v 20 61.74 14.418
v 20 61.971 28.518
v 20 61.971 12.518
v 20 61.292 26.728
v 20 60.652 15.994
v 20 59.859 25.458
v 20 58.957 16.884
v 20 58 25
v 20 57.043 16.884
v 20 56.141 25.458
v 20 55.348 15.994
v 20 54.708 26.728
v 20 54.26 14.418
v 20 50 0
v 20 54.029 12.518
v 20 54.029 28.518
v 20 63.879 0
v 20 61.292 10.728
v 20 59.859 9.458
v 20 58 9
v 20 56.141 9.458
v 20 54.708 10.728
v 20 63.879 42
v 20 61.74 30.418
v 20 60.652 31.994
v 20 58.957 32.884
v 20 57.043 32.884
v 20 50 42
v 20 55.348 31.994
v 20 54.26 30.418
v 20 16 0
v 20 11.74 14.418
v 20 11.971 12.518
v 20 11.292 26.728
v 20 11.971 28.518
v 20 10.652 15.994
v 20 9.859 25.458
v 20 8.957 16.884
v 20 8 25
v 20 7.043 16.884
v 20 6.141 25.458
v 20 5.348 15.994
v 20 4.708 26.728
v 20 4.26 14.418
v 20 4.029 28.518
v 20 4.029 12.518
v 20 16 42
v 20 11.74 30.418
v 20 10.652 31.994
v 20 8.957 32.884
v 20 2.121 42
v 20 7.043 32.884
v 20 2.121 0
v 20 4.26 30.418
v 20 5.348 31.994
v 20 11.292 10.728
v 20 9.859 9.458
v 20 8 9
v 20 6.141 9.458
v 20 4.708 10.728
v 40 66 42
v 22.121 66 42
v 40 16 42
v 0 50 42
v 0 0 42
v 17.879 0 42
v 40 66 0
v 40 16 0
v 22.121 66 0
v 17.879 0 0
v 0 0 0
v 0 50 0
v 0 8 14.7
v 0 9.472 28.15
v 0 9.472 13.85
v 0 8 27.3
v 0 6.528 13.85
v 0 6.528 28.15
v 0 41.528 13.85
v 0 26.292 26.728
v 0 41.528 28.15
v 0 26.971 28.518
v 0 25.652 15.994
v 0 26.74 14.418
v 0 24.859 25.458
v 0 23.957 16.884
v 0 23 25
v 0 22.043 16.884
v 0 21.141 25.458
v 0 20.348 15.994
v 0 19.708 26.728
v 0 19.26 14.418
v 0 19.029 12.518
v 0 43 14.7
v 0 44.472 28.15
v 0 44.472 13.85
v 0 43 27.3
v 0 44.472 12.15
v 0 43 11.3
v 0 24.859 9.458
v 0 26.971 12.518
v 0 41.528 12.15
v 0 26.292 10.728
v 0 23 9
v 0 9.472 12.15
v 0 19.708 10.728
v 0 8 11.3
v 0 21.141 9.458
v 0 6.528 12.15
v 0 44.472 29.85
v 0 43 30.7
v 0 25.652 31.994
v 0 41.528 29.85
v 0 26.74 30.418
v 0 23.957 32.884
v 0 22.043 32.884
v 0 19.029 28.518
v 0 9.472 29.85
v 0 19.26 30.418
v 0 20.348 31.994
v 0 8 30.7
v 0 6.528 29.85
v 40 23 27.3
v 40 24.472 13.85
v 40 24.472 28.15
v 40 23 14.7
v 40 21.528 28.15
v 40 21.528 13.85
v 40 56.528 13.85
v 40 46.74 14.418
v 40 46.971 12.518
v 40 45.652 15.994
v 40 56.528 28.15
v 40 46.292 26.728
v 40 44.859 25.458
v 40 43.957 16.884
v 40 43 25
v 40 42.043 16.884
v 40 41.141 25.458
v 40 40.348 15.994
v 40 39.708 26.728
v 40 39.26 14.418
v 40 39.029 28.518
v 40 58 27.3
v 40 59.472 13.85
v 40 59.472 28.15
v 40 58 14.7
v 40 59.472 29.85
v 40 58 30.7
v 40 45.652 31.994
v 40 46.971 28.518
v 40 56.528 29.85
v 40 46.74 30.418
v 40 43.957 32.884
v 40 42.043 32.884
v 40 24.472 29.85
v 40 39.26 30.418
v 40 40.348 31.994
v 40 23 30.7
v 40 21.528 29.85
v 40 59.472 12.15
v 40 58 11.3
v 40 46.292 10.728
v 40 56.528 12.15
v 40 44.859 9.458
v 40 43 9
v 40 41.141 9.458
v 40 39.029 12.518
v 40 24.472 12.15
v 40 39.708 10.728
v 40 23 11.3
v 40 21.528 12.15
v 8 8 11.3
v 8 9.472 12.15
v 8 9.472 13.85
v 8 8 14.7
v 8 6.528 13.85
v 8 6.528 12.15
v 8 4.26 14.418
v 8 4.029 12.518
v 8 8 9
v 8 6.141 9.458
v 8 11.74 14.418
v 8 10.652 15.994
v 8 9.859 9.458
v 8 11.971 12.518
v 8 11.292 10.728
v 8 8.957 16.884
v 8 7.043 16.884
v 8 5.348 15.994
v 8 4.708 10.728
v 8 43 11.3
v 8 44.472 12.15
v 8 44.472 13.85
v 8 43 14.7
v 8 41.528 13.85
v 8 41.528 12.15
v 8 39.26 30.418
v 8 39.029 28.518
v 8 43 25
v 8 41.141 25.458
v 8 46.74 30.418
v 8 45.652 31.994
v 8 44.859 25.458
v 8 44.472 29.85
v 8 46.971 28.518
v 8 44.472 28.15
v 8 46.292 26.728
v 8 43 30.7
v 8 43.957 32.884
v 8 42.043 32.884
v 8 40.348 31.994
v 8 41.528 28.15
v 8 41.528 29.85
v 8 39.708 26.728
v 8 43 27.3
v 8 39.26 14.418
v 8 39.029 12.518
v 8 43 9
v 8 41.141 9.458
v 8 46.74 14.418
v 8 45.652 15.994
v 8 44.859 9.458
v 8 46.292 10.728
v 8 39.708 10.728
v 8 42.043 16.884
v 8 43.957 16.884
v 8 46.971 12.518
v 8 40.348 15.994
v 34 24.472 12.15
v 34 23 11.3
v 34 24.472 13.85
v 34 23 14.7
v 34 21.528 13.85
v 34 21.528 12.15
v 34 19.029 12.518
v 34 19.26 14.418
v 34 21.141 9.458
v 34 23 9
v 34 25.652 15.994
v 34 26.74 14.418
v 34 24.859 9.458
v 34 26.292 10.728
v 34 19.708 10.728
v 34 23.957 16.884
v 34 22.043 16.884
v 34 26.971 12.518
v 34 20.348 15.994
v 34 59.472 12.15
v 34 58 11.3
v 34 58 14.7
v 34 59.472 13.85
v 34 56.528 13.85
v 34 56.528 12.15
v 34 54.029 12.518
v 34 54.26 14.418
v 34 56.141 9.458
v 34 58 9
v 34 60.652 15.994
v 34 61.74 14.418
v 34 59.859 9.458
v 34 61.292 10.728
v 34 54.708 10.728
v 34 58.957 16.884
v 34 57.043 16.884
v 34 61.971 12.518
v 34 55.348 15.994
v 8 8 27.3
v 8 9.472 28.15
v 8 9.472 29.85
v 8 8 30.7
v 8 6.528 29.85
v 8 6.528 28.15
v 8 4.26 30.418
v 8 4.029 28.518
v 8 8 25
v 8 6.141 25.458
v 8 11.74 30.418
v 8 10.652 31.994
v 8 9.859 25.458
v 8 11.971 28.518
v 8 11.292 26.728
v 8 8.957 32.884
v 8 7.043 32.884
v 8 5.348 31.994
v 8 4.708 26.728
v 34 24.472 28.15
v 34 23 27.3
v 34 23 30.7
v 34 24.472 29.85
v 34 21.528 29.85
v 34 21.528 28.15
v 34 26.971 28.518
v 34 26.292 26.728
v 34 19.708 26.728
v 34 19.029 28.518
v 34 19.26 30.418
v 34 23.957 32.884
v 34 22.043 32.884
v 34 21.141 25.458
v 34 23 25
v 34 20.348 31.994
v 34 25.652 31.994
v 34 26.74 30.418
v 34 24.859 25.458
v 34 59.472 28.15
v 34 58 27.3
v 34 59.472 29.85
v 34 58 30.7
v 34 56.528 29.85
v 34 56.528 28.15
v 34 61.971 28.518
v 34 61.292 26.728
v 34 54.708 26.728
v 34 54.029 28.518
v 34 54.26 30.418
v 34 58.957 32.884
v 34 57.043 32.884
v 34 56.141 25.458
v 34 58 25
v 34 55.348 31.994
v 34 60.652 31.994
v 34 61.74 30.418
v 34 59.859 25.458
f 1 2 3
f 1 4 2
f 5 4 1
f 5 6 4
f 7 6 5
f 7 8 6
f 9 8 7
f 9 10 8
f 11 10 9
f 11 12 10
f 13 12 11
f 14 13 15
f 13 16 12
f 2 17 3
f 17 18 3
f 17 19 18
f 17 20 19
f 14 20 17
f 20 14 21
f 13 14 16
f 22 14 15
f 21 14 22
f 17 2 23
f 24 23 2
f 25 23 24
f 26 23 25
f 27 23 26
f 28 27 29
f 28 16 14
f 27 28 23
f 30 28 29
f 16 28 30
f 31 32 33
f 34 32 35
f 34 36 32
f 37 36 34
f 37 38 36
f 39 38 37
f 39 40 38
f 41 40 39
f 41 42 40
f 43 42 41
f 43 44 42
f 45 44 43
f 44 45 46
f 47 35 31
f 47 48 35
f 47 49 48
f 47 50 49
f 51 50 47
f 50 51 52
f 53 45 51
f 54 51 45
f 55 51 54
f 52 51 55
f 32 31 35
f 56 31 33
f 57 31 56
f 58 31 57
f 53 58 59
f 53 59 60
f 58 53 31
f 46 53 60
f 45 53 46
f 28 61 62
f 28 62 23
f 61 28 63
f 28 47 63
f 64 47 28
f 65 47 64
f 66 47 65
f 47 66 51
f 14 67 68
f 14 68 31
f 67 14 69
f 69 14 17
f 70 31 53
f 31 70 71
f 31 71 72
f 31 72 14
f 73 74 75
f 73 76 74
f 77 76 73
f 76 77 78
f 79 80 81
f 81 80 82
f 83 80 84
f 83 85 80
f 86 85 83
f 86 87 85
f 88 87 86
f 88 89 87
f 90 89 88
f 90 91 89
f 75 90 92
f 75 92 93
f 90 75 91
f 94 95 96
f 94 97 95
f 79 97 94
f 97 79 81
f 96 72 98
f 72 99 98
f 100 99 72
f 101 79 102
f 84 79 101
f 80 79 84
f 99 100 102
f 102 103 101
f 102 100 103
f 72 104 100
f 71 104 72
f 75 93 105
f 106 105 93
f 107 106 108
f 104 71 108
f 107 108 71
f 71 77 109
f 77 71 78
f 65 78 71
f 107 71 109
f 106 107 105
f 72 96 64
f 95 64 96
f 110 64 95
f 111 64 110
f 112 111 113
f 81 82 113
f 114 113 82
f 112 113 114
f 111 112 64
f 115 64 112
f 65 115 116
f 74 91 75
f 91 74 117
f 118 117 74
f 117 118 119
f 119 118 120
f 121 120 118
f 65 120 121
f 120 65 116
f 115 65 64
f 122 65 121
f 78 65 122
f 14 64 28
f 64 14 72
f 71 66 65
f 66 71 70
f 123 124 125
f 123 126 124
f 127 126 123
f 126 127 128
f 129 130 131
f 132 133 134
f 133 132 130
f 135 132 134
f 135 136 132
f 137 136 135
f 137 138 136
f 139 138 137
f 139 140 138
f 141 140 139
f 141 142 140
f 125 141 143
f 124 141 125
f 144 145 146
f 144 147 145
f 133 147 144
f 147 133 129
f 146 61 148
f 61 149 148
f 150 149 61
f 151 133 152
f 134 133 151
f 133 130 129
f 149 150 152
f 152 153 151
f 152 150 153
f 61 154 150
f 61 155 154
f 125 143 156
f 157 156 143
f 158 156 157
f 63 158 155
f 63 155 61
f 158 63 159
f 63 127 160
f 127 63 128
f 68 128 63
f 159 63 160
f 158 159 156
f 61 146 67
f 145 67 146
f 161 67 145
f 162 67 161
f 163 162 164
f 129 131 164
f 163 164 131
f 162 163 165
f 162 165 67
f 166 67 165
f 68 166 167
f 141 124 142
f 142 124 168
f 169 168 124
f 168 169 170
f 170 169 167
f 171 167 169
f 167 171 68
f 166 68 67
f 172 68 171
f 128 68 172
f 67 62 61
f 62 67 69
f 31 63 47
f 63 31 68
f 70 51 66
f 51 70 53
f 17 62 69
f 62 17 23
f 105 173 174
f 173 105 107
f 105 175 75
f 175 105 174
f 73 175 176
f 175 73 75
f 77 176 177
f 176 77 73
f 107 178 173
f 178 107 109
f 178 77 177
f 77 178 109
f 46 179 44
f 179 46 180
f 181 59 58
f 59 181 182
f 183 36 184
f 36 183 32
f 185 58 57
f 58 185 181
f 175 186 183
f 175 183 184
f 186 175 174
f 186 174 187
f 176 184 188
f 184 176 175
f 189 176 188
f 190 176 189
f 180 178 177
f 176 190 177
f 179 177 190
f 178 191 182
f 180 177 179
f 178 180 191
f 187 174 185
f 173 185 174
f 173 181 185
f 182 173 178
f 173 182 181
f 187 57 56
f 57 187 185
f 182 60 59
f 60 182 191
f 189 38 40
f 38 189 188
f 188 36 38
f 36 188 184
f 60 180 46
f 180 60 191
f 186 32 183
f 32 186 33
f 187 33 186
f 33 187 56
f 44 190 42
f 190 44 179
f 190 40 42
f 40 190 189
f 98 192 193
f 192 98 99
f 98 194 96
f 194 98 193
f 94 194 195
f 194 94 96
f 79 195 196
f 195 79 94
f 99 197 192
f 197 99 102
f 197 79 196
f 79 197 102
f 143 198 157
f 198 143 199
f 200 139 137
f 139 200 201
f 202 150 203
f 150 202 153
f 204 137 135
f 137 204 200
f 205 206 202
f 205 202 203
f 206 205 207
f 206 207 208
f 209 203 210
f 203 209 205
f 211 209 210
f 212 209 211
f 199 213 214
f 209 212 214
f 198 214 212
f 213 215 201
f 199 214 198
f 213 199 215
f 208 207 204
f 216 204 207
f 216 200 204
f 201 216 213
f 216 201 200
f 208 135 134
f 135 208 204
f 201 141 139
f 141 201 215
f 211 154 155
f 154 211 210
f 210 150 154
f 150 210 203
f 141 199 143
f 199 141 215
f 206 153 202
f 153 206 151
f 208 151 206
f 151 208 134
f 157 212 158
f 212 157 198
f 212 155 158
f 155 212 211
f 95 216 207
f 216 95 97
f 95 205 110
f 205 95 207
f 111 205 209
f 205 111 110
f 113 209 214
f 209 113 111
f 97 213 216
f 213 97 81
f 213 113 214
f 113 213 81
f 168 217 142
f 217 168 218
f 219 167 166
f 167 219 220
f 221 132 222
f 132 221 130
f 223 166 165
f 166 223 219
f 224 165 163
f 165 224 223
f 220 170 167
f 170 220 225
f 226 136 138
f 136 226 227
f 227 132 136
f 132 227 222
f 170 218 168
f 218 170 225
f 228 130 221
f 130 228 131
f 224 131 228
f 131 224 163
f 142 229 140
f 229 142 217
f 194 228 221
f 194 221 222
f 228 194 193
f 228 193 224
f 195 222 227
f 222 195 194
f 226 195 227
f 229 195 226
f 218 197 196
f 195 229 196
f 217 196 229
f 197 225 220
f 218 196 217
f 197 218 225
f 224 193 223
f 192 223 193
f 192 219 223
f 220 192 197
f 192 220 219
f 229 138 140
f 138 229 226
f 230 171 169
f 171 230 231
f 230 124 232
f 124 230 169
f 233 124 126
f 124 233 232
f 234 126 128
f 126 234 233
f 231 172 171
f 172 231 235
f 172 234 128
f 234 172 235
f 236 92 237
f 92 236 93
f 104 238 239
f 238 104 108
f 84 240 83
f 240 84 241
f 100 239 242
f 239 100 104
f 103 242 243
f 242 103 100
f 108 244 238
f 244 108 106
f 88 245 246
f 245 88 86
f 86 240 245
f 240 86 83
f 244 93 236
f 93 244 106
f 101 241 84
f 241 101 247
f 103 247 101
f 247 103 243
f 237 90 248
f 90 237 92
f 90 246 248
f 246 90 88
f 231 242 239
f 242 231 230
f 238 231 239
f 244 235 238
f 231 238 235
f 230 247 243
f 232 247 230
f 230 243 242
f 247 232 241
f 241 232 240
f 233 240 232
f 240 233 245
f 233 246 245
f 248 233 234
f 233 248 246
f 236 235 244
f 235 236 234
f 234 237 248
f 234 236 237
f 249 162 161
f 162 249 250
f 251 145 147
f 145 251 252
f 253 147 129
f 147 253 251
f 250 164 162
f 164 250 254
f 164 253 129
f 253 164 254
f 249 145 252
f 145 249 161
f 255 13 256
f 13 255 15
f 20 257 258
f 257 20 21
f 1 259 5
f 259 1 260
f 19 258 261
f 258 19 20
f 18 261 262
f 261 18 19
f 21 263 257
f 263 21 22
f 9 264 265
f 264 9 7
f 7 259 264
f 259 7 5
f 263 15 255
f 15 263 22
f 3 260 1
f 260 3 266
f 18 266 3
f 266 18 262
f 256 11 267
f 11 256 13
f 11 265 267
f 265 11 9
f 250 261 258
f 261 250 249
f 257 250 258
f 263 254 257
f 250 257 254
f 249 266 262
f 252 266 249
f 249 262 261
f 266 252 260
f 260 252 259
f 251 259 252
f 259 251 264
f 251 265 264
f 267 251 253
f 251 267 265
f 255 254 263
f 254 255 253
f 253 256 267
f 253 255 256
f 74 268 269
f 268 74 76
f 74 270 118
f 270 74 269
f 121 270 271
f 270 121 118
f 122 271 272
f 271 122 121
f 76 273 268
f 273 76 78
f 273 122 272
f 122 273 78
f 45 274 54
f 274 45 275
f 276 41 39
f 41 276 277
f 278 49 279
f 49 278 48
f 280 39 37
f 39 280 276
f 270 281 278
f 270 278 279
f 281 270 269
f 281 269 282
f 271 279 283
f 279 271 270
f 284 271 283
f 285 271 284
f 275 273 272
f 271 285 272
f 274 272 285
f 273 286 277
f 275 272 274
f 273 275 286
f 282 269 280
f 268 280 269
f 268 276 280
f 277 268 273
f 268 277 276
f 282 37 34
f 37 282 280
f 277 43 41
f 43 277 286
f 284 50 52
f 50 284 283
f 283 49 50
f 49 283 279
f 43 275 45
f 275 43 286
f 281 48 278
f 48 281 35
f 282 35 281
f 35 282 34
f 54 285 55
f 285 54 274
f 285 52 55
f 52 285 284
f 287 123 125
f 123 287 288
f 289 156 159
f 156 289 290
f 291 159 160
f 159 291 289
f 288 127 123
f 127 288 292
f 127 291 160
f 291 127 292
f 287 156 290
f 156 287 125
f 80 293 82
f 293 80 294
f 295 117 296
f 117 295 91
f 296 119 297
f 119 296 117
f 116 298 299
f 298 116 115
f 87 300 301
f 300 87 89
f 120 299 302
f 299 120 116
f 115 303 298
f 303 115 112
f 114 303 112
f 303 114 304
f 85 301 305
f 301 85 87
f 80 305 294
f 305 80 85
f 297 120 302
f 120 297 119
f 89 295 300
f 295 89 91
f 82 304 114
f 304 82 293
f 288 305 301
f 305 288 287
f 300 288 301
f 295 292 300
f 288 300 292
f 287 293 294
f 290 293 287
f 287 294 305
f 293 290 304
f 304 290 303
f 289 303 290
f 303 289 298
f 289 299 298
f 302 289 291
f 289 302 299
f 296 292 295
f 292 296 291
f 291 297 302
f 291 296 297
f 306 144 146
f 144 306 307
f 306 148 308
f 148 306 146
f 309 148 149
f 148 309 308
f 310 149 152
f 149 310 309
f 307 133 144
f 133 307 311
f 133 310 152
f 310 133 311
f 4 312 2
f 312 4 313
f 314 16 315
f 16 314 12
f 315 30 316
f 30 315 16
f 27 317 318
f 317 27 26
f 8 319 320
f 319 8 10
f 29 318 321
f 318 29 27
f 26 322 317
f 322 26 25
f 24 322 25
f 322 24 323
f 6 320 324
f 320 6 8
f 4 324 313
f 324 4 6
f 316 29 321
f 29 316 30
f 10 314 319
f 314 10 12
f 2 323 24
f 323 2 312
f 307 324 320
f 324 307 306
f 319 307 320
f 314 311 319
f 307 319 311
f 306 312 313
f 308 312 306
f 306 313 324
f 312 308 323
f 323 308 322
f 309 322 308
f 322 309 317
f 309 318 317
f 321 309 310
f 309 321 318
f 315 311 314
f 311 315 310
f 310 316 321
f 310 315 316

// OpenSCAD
// 16 x 34
standoff();

module standoff() difference(){
    union(){
        cube([20,50,42]);
        translate([20,16,0]) cube([20,50,42]);
    }
    translate([20,0,21])  
            rotate([0,0,45]) cube([3,3,44],center=true);
    translate([20,66,21])  
            rotate([0,0,45]) cube([3,3,44],center=true);
    translate([-1,8,13]) rotate([0,90,0]) cylinder(r=1.7,h=42);
    translate([8,8,13]) rotate([0,90,0]) cylinder(r=4,h=42);
    translate([-1,43,13]) rotate([0,90,0]) cylinder(r=1.7,h=42);
    translate([8,43,29]) rotate([0,90,0]) cylinder(r=4,h=42);
    translate([-1,43,29]) rotate([0,90,0]) cylinder(r=1.7,h=42);
    translate([8,43,13]) rotate([0,90,0]) cylinder(r=4,h=42);    translate([-1,23,13]) rotate([0,90,0]) cylinder(r=1.7,h=42);
    translate([-8,23,13]) rotate([0,90,0]) cylinder(r=4,h=42);
    translate([-1,58,13]) rotate([0,90,0]) cylinder(r=1.7,h=42);
    translate([-8,58,13]) rotate([0,90,0]) cylinder(r=4,h=42);
    translate([-1,8,29]) rotate([0,90,0]) cylinder(r=1.7,h=42);
    translate([8,8,29]) rotate([0,90,0]) cylinder(r=4,h=42);    translate([-1,23,29]) rotate([0,90,0]) cylinder(r=1.7,h=42);
    translate([-8,23,29]) rotate([0,90,0]) cylinder(r=4,h=42);
    translate([-1,58,29]) rotate([0,90,0]) cylinder(r=1.7,h=42);
    translate([-8,58,29]) rotate([0,90,0]) cylinder(r=4,h=42);
}
